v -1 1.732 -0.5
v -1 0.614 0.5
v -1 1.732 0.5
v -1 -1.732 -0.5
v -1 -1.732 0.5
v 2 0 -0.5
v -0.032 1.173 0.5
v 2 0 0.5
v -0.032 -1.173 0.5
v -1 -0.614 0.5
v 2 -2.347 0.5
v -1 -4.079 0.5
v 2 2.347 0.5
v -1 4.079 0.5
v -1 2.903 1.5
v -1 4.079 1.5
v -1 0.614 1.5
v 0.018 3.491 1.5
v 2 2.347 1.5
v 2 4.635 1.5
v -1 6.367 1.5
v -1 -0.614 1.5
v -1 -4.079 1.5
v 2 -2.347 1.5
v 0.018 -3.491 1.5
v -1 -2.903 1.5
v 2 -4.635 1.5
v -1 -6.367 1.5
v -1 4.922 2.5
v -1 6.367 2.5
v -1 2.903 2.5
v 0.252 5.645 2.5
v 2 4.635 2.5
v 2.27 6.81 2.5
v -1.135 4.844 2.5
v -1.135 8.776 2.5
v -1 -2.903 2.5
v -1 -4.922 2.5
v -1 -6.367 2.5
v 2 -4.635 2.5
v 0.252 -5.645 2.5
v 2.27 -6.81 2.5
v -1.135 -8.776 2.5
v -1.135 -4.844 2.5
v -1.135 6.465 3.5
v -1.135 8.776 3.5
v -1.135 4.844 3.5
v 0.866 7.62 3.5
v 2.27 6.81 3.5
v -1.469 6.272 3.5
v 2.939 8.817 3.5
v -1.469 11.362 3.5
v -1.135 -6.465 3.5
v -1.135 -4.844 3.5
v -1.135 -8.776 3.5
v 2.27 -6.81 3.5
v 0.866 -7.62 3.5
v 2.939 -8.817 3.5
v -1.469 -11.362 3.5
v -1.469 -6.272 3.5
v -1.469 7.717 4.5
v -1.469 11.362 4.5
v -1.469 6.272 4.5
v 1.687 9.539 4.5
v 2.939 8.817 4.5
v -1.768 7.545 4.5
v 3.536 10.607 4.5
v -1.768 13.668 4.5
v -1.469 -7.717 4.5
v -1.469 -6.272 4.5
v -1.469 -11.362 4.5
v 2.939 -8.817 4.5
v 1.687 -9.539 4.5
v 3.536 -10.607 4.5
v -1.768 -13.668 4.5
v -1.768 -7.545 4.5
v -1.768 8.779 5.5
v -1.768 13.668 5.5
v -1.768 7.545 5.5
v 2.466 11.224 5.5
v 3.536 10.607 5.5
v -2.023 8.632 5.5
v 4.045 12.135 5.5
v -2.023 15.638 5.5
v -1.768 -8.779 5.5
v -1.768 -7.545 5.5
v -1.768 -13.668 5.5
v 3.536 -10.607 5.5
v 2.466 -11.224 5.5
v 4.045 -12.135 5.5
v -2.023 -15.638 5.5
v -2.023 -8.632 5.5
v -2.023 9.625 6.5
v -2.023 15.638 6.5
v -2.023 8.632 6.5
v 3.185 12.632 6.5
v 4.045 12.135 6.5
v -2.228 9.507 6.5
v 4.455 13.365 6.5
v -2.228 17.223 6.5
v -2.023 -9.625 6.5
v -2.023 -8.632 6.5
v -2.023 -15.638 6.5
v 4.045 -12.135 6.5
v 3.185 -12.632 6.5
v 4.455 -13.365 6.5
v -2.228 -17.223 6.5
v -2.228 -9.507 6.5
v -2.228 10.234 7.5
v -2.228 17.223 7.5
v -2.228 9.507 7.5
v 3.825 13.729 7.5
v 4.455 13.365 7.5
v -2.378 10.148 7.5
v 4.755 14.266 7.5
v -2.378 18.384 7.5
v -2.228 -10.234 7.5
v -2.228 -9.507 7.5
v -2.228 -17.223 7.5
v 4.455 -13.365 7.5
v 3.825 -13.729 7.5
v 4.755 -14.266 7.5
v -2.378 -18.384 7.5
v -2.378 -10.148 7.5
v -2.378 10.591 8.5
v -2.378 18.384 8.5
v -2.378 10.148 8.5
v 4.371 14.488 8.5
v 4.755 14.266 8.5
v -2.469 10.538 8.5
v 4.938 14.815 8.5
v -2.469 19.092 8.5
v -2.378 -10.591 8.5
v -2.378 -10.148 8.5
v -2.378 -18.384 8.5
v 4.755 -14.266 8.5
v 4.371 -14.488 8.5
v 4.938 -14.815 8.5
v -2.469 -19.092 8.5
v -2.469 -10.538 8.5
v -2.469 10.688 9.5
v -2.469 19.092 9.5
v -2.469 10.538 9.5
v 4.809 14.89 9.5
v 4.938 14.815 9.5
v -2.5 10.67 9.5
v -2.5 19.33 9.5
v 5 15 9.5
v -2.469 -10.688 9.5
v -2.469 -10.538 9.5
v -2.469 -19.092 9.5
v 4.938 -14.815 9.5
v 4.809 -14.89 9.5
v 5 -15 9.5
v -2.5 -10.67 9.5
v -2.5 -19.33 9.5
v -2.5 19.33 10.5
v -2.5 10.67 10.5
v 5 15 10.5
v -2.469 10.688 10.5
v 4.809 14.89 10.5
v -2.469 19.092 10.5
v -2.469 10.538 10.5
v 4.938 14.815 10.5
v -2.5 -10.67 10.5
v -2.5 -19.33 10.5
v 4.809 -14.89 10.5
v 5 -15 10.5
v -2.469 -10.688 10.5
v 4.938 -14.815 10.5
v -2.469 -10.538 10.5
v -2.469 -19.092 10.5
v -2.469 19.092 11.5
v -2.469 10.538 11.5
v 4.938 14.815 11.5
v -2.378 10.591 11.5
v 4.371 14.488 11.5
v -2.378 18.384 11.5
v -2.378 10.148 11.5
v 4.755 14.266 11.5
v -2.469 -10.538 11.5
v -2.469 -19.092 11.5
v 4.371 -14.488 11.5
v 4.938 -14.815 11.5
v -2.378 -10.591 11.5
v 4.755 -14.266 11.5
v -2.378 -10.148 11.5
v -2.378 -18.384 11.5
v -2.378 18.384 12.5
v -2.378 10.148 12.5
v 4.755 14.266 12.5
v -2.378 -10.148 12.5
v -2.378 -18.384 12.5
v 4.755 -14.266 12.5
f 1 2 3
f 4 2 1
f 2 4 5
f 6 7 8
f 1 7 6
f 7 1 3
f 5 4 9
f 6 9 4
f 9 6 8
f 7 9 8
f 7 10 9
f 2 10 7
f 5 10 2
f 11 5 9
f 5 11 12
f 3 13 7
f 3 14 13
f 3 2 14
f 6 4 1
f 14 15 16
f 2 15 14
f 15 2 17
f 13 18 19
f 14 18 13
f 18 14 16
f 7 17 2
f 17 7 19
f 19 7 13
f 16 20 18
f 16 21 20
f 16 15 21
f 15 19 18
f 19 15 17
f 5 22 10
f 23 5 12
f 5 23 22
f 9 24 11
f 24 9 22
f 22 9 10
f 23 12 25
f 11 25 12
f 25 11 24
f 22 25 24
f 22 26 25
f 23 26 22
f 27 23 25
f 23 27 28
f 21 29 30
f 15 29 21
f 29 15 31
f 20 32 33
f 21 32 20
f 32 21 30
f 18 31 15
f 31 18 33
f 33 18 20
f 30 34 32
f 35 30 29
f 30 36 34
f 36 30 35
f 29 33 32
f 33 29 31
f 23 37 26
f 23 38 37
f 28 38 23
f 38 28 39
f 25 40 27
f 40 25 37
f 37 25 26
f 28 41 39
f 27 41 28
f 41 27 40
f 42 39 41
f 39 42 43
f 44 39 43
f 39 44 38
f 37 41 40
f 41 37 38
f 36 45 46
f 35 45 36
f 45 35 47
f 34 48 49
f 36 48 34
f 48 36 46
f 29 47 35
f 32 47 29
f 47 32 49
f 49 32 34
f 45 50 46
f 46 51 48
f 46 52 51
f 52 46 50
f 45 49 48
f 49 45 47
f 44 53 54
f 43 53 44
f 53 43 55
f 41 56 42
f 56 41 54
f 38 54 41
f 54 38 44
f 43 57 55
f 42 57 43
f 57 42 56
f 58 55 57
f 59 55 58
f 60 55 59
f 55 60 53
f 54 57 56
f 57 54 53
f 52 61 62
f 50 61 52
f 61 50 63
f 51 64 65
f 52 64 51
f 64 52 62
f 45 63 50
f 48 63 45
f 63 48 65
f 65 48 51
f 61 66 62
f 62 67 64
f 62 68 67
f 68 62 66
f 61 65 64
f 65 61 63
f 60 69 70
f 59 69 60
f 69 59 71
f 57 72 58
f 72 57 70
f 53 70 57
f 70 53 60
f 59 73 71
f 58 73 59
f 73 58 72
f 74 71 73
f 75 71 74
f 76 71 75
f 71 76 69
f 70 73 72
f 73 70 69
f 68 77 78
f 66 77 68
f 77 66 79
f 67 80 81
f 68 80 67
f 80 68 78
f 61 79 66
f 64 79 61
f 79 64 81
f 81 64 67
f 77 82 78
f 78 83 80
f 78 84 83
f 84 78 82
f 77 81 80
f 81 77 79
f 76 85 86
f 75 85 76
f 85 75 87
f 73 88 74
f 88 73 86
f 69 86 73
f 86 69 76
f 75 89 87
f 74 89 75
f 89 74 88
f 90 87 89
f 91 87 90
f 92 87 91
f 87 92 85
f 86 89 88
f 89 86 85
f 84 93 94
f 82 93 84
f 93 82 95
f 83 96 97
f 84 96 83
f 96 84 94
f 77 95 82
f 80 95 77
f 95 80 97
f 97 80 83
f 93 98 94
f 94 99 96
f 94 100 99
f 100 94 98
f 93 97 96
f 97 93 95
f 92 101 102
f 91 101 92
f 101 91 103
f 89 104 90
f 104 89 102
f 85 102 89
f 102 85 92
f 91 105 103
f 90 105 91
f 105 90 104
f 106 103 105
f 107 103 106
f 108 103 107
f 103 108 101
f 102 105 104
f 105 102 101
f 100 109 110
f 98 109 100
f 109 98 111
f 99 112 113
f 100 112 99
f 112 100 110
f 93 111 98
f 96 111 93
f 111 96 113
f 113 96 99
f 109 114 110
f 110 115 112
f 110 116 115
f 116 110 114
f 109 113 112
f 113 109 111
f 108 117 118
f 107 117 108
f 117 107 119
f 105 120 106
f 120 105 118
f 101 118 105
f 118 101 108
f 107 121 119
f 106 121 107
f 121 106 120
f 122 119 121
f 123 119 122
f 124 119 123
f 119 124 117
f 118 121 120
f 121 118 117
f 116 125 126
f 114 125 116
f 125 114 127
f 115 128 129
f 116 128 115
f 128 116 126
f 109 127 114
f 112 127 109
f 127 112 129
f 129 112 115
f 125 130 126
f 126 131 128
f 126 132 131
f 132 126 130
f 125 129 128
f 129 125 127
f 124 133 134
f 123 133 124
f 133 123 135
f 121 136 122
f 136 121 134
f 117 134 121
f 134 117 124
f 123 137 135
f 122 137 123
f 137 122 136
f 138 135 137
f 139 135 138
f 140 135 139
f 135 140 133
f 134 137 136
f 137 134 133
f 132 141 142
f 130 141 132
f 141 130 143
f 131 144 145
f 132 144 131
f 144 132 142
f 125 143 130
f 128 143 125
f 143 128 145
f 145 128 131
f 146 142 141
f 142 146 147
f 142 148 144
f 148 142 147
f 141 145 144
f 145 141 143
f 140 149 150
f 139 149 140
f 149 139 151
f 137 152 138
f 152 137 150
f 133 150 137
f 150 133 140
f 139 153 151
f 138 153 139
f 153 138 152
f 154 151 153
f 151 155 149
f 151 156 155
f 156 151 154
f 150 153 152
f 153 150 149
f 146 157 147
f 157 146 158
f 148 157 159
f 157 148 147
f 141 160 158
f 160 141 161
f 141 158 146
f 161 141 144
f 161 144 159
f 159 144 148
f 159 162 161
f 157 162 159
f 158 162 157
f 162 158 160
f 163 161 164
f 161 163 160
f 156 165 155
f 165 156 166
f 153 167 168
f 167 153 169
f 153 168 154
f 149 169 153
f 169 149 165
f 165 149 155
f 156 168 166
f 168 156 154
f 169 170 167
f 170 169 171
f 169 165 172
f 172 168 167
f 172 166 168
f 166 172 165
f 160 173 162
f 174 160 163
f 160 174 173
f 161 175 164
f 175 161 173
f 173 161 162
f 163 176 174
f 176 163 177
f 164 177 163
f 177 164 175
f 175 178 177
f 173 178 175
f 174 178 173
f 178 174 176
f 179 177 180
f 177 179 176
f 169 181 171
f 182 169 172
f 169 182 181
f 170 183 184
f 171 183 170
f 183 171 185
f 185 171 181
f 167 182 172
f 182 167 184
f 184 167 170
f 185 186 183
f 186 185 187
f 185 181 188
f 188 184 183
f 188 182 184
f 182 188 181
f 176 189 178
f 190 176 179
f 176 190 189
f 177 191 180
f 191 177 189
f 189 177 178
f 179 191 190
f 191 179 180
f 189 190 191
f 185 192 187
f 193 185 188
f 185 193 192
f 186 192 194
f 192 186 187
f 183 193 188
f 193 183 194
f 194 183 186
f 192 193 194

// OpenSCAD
h=1;
ct=12;
rad=15;
cr=5;
points = [[]];
faces = [[]];
union() {
    for(i = [0:ct]){
        ang = (i/ct)*180*.6;
        si=sin(ang);
        y = rad*si;
        z = h*i;
        cr = cr * max(si, .4);
        pl = [[0,0,z],[0,y,z],[cr,y,z]];
        points = concat(points,pl);
        if(i==0){
            faces=[[0,1,2]];
        } else if (i < ct) {
            ri0=i*3-3;
            ri1=ri0+1;
            ri2=ri0+2;
            ii0=i*3;
            ii1=ii0+1;
            ii2=ii0+2;
            faceAdd=[[ri0,ri1,ii1],[ri1,ri2,ii1],[ri2,ri0,ii0]];
            faces = concat(faces,faceAdd);
        }
        translate([0,y,z]) {
            cylinder($fn=3,h=h,r1=cr,r2=cr,center=true);
        }
        
        translate([0,-y,z]) {
            cylinder($fn=3,h=h,r1=cr,r2=cr,center=true);
        }
    }
}

//echo(points);
//polyhedron(points=points, faces=faces);
